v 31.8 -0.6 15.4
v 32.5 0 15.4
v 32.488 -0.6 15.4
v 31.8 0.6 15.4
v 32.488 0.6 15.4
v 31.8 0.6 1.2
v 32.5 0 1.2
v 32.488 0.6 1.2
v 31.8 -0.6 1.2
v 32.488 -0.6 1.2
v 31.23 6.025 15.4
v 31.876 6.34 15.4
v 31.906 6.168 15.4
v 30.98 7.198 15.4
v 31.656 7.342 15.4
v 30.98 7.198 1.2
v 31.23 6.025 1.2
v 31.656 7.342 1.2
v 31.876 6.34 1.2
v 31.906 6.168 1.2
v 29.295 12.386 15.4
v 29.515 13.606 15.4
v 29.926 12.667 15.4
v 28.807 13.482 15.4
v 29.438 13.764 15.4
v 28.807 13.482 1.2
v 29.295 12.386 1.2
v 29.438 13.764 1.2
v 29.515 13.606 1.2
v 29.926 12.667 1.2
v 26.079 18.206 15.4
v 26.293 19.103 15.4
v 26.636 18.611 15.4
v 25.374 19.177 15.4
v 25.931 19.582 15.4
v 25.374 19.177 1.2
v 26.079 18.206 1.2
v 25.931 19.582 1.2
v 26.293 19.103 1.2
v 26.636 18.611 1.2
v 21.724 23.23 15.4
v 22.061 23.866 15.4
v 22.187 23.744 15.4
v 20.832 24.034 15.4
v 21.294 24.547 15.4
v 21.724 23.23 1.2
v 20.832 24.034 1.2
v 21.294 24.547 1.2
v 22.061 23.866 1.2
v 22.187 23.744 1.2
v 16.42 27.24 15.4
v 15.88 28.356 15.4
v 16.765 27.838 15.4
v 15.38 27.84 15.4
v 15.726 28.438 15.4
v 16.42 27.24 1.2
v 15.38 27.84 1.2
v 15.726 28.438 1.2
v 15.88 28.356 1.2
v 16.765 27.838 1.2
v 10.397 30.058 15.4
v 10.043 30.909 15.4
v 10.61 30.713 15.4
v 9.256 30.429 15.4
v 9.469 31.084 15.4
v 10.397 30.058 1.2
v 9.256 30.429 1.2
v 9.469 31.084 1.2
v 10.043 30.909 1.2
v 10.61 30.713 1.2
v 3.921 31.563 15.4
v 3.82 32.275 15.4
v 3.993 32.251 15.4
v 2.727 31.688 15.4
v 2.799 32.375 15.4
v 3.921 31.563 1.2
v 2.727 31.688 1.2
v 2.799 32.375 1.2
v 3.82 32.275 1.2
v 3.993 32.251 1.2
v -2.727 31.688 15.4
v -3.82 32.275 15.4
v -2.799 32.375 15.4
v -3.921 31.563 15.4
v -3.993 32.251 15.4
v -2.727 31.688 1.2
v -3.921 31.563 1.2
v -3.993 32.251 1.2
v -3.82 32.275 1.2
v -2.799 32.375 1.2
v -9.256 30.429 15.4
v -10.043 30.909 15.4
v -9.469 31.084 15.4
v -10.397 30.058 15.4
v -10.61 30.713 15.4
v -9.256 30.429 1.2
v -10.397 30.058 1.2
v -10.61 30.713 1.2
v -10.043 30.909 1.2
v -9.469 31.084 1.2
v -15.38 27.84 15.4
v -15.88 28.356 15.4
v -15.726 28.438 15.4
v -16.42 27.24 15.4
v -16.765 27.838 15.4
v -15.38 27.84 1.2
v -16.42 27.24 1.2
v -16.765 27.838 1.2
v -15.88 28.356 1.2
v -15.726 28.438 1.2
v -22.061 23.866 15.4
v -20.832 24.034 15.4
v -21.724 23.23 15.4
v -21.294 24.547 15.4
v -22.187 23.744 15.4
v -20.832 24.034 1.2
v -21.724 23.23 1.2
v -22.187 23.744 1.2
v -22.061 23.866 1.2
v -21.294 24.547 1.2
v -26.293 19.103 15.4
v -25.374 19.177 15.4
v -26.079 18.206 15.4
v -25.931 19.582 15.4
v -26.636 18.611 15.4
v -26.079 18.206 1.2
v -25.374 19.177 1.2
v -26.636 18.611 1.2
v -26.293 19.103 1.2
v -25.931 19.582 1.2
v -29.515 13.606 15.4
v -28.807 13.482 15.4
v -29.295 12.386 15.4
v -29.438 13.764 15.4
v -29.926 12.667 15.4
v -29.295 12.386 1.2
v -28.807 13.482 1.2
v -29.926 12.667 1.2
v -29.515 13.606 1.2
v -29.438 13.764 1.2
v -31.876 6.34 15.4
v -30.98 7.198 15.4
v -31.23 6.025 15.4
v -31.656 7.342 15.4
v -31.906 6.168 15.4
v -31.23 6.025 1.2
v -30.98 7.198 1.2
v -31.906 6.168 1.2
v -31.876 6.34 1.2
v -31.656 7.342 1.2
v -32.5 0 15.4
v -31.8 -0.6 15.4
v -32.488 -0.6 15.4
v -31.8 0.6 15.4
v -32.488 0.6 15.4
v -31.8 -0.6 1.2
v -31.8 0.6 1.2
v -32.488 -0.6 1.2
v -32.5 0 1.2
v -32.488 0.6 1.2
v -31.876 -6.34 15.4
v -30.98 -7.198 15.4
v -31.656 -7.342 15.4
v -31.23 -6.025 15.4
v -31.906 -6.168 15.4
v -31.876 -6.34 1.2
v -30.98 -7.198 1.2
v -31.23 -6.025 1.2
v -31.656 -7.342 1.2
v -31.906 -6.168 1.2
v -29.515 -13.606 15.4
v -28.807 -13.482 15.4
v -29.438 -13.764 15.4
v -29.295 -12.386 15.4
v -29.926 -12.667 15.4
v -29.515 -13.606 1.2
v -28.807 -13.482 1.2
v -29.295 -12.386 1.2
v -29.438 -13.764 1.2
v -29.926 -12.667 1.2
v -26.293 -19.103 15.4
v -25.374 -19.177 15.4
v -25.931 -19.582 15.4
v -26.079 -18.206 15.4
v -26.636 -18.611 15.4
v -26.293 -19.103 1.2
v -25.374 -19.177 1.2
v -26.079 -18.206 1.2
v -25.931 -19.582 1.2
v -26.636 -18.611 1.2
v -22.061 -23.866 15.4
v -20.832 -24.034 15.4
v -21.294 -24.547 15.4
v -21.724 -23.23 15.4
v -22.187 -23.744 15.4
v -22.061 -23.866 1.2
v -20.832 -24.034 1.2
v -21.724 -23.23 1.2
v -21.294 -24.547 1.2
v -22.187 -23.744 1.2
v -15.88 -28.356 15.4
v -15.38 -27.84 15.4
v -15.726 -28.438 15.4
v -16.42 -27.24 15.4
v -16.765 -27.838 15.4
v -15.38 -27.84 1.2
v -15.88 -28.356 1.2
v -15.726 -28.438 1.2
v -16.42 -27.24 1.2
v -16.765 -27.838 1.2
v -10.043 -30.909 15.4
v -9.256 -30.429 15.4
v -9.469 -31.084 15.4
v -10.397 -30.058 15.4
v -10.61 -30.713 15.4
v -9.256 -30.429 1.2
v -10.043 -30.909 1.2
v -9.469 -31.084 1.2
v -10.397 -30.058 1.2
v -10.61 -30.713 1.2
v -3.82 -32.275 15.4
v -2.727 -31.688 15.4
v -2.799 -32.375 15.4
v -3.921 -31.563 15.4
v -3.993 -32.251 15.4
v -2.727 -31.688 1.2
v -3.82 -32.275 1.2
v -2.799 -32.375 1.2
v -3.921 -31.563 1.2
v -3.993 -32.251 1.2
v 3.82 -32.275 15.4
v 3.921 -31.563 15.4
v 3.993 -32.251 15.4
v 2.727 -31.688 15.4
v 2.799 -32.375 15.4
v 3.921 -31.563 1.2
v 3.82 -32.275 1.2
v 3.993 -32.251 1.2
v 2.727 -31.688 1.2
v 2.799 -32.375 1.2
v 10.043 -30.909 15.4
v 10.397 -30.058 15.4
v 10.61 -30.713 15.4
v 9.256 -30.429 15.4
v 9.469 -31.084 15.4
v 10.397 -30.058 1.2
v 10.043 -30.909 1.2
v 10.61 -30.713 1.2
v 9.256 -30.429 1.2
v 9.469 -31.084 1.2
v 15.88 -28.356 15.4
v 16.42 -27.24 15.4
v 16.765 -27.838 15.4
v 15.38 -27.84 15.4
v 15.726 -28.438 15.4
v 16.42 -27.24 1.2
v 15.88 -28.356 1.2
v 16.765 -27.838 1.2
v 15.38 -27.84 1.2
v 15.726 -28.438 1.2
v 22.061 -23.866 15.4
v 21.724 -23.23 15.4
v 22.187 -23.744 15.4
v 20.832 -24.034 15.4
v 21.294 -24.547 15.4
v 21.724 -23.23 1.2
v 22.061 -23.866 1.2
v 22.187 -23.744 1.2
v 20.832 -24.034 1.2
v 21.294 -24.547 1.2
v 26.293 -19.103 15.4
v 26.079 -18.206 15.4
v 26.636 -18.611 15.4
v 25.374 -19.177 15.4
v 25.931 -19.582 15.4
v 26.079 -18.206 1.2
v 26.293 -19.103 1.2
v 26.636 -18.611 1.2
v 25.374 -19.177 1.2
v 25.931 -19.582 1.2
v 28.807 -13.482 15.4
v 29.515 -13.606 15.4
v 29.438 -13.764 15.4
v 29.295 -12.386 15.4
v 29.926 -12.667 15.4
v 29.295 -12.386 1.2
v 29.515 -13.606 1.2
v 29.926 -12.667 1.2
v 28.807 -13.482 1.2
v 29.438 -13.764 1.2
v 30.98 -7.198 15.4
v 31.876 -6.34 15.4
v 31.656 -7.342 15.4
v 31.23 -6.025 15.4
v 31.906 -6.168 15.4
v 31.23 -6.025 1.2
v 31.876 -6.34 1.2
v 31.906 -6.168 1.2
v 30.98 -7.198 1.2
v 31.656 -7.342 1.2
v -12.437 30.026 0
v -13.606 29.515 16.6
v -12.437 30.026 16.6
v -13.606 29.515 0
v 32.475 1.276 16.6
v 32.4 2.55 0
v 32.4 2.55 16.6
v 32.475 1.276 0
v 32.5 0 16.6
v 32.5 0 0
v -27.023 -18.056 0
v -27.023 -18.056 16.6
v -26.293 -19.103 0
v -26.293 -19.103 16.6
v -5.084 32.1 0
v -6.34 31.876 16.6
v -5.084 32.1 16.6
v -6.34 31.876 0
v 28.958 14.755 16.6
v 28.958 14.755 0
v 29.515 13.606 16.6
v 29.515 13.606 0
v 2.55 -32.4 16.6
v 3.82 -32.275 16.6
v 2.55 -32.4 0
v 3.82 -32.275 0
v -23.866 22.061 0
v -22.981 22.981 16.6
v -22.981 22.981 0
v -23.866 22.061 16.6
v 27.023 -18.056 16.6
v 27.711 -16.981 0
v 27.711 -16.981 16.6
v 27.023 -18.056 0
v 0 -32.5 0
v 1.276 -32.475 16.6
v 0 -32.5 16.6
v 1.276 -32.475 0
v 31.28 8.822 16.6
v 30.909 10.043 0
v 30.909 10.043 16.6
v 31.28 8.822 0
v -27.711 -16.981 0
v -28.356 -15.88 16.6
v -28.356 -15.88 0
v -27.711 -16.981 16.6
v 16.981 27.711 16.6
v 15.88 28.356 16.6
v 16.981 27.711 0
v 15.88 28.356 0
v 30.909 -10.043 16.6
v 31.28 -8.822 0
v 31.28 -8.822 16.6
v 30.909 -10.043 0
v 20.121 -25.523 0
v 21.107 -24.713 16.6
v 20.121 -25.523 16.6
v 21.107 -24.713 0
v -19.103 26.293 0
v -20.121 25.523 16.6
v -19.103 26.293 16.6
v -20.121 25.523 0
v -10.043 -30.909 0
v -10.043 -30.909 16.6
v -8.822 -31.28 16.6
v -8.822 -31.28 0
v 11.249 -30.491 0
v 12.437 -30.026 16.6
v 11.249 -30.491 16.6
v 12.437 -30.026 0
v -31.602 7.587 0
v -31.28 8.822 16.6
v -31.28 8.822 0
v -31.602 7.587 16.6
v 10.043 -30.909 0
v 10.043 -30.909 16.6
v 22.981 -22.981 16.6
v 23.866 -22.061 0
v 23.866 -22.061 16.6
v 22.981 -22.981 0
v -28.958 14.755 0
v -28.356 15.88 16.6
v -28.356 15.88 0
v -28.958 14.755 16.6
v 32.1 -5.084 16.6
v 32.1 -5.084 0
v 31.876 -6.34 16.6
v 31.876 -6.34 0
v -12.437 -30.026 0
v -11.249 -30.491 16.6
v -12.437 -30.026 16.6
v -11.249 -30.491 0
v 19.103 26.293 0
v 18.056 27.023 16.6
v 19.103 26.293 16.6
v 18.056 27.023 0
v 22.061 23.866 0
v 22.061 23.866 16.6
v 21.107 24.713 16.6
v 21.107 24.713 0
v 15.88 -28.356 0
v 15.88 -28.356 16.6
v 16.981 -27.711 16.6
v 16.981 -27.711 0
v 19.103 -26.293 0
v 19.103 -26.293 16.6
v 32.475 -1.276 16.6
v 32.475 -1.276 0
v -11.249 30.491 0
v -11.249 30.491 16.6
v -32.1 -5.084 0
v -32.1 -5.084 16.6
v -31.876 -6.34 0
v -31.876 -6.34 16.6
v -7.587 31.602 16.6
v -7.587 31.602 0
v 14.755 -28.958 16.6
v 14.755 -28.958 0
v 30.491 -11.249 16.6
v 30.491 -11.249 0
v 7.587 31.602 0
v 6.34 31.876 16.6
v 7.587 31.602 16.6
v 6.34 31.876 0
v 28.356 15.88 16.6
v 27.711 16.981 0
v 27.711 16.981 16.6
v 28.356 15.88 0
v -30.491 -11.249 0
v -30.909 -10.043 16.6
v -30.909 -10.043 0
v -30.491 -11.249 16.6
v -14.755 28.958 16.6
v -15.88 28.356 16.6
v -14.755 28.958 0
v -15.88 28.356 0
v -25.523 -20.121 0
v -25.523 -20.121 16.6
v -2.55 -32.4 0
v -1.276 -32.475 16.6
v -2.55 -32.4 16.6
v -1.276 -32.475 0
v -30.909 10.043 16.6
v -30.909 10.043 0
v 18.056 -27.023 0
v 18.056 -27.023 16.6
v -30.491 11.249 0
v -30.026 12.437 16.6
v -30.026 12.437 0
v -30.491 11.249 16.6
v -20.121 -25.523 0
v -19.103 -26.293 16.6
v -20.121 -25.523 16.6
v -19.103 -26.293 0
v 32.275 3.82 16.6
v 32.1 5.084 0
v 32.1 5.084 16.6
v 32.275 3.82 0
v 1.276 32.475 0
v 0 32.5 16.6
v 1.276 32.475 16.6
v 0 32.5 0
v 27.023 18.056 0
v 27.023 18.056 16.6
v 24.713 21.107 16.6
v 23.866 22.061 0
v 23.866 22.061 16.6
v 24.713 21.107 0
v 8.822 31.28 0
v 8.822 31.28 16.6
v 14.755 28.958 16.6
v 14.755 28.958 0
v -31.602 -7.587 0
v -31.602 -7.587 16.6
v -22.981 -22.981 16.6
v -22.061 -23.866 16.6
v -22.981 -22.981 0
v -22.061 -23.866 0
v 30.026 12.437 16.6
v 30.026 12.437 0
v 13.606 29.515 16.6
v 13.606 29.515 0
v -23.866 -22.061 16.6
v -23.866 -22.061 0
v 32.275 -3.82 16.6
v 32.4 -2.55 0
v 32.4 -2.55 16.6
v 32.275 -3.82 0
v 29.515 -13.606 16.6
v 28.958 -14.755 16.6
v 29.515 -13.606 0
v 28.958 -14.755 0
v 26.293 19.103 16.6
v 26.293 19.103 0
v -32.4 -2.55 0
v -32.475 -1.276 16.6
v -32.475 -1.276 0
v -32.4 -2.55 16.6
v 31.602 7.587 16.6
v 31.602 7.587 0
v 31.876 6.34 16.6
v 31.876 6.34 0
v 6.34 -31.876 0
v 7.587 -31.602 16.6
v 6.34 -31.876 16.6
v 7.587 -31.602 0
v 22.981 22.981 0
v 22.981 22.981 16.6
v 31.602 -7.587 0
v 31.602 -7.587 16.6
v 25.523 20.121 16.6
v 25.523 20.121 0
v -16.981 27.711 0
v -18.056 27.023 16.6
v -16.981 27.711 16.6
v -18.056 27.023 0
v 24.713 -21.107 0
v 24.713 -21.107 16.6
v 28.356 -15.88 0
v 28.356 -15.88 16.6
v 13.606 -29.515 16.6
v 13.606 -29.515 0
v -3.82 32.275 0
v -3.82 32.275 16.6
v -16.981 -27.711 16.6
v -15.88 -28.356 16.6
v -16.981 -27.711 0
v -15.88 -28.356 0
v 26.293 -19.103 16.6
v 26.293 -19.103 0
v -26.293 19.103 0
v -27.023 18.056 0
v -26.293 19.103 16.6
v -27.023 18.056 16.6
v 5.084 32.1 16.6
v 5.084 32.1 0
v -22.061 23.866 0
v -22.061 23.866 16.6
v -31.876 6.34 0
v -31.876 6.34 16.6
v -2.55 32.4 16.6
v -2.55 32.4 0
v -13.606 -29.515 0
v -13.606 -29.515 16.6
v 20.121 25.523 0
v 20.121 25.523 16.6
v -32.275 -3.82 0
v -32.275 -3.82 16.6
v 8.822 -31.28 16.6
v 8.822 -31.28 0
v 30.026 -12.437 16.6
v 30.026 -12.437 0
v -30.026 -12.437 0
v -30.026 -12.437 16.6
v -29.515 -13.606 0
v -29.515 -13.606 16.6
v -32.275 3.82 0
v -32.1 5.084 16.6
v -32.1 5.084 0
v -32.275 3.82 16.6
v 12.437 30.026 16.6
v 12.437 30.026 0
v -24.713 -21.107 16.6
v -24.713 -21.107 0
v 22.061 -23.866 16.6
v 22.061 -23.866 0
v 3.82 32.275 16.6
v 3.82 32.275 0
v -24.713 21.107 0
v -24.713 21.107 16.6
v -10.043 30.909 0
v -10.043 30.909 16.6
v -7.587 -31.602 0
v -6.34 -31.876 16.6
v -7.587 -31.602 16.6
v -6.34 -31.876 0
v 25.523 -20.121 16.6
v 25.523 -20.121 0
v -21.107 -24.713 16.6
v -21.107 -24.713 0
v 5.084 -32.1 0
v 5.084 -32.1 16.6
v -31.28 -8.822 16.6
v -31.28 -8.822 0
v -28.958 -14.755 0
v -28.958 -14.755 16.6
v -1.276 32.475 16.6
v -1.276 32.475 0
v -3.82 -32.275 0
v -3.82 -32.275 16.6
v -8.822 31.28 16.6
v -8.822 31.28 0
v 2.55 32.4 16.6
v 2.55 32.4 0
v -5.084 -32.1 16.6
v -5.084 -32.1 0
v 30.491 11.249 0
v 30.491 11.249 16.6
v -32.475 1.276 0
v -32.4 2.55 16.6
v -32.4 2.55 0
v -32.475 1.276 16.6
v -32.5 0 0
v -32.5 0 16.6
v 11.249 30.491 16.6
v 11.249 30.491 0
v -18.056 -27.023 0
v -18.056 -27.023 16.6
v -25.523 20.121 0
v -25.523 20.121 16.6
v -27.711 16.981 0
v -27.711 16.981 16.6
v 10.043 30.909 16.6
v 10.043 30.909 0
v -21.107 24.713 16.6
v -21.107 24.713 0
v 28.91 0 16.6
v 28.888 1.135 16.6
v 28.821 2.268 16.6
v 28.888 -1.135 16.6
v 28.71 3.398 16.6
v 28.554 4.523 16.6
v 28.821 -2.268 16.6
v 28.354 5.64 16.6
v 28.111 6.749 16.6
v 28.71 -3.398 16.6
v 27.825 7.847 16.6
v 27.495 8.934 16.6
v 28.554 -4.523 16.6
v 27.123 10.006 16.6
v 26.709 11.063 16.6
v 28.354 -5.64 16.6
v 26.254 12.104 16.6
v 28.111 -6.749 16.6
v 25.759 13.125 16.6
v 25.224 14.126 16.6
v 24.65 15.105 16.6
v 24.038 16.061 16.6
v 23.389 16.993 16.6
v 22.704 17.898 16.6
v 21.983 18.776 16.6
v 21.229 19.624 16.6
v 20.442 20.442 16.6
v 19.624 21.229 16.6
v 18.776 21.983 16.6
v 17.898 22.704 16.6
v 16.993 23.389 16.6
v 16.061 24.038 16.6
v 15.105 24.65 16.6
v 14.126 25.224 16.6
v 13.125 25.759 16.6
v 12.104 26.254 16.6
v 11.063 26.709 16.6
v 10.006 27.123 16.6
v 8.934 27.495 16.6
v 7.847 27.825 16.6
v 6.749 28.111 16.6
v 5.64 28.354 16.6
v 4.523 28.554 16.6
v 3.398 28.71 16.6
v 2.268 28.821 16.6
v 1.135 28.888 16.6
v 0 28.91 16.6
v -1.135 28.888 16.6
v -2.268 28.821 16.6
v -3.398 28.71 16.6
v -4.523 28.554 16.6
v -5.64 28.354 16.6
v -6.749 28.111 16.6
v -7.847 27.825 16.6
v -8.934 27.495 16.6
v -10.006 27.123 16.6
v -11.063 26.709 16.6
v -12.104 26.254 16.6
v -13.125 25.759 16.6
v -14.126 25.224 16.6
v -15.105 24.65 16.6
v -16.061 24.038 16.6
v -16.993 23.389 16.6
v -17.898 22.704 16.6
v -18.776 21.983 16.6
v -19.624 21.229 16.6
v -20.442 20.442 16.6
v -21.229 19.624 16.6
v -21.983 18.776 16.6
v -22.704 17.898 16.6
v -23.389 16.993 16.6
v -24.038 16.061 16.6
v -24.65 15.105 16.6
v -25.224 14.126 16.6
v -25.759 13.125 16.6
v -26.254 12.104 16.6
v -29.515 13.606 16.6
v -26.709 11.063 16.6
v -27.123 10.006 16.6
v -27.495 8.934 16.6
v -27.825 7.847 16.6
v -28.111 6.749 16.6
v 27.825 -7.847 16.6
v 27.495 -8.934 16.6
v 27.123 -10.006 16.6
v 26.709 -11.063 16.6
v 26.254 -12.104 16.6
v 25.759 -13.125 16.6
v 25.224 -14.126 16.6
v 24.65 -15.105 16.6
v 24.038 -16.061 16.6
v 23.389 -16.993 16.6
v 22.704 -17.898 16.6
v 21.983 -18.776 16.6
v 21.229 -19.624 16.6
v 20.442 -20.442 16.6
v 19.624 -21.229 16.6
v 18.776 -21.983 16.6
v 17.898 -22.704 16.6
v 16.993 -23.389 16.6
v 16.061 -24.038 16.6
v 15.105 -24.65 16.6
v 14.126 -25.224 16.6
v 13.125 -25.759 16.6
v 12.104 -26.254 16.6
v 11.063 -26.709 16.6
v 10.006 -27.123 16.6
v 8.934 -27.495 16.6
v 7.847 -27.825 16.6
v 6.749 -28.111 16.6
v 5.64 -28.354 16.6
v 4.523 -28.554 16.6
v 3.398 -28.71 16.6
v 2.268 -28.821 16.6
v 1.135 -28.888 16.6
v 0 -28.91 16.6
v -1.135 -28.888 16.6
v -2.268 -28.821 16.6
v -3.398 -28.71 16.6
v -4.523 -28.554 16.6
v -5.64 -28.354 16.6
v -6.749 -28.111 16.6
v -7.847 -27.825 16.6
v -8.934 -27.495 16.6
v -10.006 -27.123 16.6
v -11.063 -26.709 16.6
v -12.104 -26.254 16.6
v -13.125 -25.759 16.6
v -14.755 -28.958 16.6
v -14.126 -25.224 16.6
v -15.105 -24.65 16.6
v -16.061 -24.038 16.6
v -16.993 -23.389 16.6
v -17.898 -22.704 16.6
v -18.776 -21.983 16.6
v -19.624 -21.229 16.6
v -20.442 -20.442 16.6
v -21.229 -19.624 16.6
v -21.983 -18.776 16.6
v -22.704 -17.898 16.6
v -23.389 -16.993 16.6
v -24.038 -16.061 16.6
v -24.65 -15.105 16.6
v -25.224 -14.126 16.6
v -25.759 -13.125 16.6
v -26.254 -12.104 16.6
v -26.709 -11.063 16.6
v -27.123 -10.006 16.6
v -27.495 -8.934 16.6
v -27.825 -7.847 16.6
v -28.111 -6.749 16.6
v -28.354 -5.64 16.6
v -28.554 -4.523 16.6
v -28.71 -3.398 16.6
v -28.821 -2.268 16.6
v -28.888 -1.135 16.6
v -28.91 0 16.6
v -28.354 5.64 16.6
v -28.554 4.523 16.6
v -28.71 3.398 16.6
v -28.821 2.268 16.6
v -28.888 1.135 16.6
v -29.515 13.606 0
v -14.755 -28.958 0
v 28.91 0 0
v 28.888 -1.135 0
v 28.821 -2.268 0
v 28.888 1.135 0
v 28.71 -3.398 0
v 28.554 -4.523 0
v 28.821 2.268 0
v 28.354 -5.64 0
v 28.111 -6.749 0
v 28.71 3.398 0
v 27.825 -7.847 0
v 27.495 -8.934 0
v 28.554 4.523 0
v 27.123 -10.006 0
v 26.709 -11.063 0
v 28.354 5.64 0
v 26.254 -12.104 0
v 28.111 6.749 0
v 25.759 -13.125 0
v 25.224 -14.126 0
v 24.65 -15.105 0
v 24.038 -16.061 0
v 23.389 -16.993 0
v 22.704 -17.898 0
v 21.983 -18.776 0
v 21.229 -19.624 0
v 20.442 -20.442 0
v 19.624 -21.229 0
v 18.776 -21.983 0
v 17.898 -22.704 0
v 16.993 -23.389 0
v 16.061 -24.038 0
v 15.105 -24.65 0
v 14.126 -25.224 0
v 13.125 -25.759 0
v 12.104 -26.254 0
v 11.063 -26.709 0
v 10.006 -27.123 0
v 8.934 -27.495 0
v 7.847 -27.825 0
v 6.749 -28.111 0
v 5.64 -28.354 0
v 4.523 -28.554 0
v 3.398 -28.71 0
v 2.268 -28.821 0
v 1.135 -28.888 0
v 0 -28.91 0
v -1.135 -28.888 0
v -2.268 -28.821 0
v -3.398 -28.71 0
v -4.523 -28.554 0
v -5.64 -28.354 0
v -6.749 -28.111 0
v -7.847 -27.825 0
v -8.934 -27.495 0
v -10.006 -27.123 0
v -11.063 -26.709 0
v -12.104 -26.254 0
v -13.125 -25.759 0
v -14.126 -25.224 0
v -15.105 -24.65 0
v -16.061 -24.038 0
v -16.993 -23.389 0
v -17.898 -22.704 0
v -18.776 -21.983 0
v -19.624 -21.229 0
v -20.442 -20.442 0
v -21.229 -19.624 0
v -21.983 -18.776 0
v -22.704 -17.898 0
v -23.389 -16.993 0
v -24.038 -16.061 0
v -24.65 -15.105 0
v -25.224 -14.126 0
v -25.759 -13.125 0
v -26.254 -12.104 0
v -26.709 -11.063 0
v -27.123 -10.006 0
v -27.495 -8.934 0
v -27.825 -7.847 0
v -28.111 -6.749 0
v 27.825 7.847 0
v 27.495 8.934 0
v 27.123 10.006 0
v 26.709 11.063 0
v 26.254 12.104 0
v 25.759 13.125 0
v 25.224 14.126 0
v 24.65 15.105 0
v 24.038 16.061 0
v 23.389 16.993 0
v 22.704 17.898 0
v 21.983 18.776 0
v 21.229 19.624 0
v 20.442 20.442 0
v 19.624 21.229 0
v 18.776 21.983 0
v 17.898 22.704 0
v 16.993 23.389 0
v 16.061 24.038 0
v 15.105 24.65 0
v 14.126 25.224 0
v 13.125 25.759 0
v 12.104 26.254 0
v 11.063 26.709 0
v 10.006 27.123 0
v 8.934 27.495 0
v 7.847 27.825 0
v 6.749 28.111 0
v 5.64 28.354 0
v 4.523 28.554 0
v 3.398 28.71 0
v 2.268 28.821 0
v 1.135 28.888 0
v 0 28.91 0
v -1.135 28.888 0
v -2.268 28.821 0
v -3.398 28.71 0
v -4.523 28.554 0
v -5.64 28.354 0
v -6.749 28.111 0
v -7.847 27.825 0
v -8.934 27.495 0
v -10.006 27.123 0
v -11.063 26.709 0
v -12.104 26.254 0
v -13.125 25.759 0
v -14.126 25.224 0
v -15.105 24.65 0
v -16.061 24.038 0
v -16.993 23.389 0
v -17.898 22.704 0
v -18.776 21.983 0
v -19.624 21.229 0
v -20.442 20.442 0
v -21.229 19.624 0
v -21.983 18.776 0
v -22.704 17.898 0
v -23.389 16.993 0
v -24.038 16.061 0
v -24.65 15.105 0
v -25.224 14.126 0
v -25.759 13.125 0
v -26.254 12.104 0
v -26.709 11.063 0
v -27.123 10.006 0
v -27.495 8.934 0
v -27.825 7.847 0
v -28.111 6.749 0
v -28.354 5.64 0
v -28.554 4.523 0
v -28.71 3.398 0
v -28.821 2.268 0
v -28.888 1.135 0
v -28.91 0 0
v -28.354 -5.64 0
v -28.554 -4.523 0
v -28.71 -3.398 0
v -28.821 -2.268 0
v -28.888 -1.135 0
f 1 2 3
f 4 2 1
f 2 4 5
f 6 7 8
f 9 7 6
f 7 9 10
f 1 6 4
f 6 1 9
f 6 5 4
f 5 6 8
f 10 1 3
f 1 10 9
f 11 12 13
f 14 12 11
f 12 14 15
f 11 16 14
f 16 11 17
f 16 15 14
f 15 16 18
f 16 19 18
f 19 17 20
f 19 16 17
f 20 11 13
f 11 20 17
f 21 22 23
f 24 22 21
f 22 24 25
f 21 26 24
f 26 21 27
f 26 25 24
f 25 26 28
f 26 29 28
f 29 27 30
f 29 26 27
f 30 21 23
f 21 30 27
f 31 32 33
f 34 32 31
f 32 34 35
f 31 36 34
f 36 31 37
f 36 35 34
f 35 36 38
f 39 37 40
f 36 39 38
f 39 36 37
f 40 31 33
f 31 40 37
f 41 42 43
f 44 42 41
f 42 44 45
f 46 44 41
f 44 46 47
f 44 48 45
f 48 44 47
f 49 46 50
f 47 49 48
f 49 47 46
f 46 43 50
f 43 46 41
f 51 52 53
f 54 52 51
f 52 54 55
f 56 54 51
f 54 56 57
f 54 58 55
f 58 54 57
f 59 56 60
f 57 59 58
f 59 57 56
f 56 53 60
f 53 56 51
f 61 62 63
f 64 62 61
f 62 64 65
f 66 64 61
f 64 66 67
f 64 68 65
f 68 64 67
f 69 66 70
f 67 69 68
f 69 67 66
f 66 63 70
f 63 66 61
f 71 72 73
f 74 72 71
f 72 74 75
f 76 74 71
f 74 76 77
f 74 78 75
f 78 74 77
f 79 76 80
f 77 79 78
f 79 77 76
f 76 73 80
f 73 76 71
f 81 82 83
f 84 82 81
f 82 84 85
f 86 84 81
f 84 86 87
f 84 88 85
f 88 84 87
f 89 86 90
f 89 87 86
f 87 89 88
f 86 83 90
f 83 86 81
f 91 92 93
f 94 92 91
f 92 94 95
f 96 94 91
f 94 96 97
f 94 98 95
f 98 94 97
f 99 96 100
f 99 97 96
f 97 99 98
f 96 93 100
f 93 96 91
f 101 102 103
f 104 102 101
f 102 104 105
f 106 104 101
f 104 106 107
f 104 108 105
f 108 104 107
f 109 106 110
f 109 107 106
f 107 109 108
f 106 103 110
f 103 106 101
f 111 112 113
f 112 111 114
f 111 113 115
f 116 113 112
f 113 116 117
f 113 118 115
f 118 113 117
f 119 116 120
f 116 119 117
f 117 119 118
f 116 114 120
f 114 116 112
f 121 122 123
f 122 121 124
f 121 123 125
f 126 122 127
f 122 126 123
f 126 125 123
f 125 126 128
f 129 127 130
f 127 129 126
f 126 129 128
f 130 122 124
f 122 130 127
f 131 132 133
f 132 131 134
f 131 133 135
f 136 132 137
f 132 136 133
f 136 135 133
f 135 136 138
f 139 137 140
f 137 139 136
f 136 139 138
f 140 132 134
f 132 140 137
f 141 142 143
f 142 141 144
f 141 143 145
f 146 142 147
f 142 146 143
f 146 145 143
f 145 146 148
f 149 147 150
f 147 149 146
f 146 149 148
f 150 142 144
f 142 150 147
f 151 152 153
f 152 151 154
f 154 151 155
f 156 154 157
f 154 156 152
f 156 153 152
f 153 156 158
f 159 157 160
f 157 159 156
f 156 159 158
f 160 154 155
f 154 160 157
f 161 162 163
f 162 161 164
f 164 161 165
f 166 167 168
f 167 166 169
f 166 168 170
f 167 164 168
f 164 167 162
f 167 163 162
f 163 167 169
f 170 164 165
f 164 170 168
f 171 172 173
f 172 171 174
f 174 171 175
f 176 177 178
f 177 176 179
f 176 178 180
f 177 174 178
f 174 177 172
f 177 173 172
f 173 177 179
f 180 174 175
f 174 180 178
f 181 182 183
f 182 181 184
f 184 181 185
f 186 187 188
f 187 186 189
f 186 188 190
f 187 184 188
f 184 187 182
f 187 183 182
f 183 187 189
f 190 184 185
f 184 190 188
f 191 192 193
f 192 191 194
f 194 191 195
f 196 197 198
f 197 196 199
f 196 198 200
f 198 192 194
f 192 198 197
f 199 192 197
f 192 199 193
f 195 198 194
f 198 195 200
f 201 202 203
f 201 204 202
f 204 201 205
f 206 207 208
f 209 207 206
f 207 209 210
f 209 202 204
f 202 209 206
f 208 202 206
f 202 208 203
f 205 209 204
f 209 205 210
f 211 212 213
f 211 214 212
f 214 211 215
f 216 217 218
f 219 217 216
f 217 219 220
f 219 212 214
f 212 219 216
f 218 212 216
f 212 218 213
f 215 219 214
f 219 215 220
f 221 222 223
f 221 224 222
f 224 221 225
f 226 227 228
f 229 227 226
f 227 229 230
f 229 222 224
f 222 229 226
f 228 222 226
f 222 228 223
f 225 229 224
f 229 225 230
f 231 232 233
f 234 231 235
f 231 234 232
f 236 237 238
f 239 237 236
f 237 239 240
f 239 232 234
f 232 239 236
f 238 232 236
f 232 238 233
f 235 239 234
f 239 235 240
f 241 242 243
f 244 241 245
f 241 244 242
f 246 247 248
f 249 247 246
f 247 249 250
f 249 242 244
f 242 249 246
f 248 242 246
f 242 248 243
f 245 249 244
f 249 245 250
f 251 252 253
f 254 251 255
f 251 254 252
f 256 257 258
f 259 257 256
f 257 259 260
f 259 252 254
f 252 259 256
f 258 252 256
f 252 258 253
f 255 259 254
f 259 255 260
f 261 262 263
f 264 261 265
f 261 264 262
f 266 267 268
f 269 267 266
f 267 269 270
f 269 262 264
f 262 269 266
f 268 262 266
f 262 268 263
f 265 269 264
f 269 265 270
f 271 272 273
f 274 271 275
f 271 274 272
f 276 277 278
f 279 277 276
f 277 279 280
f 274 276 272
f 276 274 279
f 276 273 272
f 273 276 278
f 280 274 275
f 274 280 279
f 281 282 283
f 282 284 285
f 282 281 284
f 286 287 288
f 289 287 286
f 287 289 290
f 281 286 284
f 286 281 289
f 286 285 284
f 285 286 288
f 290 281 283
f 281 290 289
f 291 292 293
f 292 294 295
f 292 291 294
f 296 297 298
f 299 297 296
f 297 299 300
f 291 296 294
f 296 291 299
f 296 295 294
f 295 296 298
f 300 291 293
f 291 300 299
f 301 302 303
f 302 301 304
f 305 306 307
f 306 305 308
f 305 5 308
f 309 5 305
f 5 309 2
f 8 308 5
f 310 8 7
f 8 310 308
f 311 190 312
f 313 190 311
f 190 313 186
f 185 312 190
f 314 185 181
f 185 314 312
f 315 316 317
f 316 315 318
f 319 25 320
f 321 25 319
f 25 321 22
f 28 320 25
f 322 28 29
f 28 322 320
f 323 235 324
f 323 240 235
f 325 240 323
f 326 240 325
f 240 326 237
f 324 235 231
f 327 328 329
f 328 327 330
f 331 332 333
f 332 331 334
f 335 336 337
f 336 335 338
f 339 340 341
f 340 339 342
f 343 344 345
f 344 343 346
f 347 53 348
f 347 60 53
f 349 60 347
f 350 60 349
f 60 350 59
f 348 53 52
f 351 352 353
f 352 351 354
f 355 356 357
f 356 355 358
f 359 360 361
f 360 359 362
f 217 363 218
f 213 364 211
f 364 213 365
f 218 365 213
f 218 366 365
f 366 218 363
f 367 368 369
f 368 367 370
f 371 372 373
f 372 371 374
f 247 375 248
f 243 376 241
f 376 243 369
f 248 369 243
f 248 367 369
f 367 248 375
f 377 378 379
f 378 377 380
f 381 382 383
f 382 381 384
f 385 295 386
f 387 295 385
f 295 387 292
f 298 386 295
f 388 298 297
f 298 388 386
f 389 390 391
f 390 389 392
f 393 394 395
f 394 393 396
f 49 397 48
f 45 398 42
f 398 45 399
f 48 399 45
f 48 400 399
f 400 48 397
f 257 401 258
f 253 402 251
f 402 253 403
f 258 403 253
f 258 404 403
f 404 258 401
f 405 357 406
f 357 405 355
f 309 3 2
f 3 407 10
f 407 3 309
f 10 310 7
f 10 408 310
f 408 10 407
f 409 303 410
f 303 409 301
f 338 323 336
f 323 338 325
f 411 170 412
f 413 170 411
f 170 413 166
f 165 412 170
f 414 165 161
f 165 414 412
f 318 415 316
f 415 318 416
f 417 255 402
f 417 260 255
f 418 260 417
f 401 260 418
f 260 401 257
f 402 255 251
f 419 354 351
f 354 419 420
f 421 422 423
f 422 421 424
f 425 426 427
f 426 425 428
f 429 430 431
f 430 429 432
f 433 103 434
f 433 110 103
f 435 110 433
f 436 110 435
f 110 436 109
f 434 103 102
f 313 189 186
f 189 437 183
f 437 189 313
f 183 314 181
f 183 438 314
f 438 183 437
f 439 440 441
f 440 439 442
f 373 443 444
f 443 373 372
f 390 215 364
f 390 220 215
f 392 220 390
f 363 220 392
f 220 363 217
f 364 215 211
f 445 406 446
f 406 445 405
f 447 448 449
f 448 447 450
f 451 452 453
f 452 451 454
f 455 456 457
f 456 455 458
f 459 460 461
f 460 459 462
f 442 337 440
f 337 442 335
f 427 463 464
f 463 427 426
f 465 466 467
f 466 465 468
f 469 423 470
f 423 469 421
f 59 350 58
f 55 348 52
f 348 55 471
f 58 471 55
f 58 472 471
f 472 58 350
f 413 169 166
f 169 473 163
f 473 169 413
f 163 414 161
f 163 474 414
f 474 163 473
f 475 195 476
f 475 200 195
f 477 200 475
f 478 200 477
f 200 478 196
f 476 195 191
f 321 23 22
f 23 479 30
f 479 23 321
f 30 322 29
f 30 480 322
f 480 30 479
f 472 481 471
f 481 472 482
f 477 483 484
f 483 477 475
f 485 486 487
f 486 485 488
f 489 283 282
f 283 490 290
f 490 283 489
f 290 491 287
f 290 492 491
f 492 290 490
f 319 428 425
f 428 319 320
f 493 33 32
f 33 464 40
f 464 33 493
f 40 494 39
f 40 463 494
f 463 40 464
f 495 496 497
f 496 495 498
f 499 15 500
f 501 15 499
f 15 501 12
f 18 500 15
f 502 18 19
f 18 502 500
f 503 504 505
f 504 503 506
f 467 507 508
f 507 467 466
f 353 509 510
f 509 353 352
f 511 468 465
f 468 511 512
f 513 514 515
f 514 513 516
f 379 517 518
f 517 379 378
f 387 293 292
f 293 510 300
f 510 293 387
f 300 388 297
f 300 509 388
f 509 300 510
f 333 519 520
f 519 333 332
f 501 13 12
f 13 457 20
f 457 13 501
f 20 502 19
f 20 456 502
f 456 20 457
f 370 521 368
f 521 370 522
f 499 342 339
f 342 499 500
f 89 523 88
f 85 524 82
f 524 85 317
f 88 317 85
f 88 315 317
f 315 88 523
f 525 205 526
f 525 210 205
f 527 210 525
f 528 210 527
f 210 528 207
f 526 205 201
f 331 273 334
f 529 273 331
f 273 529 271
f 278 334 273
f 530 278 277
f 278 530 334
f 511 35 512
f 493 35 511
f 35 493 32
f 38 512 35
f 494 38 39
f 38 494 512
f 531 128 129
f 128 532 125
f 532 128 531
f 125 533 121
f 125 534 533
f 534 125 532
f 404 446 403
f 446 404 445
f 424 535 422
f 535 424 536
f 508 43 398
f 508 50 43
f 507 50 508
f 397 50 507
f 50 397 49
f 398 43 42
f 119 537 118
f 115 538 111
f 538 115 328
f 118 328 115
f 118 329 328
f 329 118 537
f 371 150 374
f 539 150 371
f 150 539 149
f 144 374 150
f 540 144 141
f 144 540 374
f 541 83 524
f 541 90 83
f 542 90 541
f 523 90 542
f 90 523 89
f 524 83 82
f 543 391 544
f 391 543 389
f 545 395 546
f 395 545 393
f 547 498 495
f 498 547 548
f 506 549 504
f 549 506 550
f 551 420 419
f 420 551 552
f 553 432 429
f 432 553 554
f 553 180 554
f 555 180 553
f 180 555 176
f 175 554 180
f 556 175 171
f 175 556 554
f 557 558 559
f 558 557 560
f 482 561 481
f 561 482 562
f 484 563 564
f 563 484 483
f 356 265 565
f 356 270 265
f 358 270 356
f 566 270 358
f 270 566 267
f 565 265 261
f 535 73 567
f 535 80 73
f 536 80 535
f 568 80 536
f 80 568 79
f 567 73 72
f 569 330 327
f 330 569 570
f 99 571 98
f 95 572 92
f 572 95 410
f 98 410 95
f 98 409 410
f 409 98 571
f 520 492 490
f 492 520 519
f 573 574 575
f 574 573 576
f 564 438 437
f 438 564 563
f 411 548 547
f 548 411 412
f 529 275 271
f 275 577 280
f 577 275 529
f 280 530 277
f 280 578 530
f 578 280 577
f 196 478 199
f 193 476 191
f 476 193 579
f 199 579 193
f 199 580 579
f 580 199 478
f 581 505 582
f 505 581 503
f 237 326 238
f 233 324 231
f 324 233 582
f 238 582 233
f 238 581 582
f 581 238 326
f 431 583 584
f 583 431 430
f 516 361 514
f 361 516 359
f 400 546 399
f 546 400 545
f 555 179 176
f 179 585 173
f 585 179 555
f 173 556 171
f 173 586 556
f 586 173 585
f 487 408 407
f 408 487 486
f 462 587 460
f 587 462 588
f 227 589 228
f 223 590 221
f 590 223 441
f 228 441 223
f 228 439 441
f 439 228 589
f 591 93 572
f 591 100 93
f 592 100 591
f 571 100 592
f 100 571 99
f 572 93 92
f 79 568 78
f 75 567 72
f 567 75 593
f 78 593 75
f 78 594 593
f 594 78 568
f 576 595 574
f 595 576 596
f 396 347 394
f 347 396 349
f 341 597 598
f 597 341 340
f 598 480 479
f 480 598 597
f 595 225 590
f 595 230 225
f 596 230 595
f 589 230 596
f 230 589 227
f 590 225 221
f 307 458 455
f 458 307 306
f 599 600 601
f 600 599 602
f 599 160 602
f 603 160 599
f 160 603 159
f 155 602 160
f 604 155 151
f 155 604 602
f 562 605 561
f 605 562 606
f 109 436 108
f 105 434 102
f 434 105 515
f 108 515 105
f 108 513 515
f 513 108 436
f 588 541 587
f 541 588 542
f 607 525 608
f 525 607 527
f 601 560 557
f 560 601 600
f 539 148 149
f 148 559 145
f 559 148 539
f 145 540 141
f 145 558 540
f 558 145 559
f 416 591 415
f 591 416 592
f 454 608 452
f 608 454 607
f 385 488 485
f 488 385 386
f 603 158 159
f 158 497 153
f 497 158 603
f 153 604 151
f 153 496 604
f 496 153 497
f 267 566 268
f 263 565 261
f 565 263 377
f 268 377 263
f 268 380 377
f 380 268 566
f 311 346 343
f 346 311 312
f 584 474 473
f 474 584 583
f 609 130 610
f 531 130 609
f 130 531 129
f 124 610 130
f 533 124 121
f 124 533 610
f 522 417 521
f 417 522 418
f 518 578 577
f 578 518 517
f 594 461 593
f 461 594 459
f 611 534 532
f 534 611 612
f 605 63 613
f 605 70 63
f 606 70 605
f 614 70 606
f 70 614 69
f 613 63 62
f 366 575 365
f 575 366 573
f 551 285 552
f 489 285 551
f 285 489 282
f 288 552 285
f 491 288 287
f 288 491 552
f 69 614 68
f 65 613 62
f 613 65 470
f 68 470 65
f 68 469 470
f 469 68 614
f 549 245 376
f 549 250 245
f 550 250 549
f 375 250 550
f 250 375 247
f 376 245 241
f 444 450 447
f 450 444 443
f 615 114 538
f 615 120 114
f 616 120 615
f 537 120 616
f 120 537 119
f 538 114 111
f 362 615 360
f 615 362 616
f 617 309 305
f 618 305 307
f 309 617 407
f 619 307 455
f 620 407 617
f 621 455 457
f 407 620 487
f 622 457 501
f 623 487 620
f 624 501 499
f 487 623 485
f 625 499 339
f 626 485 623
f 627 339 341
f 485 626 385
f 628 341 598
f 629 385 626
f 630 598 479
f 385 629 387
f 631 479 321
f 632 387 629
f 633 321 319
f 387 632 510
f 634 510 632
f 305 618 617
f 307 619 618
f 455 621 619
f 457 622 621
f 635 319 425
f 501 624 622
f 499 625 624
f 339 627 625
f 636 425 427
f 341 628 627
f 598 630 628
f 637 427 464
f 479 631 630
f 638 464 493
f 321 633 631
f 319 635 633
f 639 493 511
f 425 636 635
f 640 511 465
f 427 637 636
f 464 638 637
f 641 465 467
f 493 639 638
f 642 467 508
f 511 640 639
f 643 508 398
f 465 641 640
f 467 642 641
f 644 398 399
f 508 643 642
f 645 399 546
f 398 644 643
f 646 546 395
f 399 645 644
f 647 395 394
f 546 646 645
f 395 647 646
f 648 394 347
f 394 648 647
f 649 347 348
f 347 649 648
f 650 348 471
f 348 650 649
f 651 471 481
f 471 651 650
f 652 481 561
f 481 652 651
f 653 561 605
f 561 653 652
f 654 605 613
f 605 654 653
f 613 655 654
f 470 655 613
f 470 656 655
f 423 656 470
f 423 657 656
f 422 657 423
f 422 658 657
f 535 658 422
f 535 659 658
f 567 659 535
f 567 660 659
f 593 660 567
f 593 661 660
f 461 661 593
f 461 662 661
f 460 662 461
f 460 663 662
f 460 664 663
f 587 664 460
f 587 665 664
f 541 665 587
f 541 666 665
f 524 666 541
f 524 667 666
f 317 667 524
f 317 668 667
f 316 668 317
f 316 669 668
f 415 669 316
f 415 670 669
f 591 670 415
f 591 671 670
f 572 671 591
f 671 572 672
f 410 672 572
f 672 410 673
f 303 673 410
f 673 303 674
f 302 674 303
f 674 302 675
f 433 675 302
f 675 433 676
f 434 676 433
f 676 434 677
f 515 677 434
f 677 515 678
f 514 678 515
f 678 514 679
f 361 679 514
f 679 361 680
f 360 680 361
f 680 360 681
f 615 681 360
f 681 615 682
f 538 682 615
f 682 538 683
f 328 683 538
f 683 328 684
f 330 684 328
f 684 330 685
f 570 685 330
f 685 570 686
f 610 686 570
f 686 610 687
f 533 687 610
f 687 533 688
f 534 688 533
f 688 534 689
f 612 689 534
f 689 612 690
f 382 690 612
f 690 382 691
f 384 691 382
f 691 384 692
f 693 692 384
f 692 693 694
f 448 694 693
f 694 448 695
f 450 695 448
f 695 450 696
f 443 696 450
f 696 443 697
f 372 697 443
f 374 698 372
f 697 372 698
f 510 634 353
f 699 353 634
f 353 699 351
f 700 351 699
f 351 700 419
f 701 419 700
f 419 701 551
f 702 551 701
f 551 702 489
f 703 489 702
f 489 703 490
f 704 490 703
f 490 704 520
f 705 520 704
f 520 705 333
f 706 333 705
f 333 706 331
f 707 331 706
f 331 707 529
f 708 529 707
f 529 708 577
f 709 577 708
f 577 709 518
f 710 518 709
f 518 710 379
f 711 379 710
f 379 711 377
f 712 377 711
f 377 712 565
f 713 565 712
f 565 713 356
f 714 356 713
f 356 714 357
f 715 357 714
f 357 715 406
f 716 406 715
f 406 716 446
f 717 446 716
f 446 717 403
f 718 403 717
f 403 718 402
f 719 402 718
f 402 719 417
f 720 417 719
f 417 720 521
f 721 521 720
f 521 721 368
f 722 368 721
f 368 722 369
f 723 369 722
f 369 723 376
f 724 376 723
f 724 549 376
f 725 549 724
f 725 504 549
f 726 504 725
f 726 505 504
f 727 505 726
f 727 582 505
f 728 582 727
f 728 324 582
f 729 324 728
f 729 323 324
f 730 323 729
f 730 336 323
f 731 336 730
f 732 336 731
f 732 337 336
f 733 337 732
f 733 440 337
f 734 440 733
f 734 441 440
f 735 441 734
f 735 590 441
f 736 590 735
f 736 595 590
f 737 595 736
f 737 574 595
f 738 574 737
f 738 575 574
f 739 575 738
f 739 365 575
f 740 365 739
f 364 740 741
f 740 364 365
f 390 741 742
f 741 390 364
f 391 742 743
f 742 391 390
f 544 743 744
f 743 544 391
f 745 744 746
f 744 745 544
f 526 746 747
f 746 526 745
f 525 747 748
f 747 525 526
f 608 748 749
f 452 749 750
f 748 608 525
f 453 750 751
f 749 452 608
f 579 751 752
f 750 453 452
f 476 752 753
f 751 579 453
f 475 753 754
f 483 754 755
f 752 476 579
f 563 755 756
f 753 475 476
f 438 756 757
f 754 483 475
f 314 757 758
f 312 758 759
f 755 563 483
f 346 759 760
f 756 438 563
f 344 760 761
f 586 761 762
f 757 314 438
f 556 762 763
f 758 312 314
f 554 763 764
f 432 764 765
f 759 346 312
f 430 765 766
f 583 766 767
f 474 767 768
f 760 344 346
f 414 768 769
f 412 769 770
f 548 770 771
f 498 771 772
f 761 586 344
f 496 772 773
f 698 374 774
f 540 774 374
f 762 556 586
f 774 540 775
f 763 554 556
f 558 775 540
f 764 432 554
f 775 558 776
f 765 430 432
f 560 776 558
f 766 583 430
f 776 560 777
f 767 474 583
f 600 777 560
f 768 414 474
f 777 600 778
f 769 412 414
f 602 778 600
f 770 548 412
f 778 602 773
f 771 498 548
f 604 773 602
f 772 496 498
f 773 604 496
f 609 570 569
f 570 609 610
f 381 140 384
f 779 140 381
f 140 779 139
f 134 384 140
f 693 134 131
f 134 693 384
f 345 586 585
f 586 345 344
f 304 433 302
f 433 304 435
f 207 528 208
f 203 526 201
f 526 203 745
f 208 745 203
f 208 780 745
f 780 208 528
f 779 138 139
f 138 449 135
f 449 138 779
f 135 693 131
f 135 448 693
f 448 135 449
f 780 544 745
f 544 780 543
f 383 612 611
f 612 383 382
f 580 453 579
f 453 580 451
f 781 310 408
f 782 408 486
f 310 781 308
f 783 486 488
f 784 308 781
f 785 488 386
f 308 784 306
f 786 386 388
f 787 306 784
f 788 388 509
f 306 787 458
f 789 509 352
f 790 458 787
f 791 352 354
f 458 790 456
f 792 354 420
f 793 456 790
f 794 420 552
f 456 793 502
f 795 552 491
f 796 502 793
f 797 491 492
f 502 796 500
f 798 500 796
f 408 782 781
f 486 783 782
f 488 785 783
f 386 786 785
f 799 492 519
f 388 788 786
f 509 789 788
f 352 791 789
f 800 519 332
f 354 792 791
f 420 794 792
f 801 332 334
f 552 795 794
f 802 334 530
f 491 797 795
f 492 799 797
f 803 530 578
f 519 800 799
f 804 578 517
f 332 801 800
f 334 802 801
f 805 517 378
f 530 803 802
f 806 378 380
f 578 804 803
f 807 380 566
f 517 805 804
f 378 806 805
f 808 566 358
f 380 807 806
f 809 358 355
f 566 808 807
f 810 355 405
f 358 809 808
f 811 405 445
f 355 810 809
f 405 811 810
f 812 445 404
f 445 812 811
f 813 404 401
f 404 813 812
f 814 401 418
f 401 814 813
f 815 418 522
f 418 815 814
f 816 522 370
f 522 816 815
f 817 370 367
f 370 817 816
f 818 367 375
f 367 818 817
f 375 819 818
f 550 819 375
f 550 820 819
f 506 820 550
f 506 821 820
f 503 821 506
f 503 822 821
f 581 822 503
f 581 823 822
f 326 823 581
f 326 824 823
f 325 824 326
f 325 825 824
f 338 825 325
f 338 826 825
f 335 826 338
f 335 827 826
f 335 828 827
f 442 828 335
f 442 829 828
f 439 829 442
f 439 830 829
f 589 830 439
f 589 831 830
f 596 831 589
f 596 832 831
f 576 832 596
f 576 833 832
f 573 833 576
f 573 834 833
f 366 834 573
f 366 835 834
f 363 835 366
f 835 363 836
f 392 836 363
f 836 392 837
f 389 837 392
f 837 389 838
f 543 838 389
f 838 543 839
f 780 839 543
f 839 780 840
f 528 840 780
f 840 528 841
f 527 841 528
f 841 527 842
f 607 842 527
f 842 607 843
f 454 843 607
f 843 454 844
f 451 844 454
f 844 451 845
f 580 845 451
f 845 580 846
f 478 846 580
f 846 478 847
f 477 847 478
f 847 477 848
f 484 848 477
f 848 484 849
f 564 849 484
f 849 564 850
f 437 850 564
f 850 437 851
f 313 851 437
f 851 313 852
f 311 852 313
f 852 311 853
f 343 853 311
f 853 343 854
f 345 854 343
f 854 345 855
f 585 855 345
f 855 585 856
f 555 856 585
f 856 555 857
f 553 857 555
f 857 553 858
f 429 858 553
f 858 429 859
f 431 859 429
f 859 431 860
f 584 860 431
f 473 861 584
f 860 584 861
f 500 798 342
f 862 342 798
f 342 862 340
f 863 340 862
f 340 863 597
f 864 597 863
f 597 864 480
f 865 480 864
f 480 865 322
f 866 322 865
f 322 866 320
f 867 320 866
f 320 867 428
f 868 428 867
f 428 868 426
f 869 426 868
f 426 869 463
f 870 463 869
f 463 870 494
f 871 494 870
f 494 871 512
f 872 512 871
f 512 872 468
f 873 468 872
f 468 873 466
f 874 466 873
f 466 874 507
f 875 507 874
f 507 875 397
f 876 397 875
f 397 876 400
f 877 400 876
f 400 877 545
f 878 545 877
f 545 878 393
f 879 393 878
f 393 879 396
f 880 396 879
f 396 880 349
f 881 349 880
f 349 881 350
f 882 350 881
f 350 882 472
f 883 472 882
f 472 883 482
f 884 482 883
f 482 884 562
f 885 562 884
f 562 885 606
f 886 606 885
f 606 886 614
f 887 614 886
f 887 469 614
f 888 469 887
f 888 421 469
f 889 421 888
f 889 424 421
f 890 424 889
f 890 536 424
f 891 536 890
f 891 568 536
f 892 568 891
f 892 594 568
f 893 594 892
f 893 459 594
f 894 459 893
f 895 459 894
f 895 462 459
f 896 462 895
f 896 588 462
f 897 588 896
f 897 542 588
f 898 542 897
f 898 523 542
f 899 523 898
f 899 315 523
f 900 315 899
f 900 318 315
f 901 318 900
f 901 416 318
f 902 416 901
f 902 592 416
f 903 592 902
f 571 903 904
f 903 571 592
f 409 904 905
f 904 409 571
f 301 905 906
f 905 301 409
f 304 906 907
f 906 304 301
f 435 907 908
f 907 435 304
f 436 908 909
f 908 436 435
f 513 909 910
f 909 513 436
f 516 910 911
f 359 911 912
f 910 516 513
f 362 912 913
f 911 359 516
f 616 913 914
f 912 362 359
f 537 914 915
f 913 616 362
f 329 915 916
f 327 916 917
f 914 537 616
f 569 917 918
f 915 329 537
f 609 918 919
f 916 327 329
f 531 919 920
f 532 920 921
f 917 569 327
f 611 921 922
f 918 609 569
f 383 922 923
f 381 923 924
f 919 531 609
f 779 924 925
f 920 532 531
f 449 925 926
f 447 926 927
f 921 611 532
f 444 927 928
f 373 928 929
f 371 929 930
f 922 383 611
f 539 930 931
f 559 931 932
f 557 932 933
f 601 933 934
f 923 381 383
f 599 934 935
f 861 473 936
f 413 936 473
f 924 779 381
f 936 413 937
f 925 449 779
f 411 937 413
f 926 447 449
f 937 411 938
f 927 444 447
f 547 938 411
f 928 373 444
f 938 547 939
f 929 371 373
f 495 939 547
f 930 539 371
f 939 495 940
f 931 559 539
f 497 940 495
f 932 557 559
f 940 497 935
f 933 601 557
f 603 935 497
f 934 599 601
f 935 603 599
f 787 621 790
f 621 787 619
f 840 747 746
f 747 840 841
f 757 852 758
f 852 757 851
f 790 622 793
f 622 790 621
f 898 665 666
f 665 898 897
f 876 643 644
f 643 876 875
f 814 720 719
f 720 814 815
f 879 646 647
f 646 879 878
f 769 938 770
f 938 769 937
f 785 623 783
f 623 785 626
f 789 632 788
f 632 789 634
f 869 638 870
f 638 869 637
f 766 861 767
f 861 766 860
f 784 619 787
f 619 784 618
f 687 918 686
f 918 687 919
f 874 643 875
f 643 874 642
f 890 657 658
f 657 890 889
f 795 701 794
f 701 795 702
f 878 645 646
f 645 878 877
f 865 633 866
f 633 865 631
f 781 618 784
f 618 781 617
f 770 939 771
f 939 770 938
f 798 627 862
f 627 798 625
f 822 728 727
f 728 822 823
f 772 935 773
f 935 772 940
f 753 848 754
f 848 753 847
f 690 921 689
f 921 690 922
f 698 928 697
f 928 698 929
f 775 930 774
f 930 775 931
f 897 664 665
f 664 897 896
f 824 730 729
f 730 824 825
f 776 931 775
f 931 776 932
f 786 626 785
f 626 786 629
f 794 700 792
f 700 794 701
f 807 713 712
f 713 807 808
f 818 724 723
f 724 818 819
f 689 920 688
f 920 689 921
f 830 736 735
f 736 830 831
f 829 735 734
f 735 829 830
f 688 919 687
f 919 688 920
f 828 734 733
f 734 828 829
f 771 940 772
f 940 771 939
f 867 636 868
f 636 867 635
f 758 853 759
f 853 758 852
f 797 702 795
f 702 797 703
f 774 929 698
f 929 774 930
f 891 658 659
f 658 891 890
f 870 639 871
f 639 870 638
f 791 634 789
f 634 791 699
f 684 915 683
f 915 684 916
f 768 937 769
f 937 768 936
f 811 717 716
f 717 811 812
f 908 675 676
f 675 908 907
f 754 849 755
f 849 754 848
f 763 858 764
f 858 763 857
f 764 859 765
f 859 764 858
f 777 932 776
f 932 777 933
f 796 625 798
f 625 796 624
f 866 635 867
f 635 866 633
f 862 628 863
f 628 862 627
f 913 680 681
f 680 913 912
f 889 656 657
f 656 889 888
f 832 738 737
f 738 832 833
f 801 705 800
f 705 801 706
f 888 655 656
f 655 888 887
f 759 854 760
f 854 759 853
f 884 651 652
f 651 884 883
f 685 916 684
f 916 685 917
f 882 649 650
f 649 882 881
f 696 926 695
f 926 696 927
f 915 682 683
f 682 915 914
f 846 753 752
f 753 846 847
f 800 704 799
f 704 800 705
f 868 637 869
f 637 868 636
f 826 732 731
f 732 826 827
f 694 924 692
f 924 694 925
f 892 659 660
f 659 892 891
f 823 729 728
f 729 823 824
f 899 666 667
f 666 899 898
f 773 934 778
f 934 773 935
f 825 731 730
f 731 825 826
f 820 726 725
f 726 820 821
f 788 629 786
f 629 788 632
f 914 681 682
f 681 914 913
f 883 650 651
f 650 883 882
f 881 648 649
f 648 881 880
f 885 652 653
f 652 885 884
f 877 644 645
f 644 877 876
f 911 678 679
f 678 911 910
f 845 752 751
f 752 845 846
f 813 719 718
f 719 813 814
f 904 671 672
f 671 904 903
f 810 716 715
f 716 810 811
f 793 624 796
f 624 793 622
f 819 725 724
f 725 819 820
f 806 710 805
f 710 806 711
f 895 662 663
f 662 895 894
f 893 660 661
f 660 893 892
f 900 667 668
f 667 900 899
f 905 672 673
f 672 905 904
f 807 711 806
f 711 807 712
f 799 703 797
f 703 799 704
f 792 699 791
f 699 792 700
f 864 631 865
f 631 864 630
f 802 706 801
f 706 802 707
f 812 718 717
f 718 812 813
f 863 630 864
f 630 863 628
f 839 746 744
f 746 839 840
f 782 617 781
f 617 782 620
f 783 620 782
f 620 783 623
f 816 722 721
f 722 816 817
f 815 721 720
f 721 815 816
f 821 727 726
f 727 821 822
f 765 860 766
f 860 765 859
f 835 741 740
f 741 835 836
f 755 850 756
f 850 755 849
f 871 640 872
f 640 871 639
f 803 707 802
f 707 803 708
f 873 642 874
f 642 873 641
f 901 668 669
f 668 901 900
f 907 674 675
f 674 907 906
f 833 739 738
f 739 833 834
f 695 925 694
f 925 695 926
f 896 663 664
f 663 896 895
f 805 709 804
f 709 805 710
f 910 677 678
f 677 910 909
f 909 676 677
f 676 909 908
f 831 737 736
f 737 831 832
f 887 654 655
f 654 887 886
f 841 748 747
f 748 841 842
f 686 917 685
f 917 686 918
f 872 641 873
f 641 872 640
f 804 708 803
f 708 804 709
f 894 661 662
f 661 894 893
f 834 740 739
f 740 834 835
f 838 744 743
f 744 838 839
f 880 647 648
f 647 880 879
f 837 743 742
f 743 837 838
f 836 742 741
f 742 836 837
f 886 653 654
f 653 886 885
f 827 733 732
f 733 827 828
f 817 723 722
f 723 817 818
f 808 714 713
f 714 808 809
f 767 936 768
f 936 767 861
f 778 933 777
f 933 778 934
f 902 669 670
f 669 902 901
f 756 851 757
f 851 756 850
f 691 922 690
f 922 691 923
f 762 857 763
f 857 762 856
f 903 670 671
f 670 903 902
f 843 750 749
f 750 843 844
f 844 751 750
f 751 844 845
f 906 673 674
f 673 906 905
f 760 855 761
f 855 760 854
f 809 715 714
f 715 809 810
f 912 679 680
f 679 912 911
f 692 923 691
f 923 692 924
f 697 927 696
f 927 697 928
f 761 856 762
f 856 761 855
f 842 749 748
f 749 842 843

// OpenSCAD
// tire_tpu.scad: optional printed tire for wheel.scad with tire = "tpu".
//
// For people who already have TPU. Printed 95A TPU grips noticeably less than
// a rubber O-ring or a cast silicone tire, so the O-ring wheel is the default.
// Stretch the tire over one lip of the rim into the channel.
//
// Print flat as exported, 95A TPU, slow (20-25 mm/s), 100 % infill. Print two.

include <lib/telebot_common.scad>

stretch = 0.02;             // tire inner diameter is 2 % smaller than the channel
tread_grooves = 30;
tread_depth = 0.7;

channel_r = wheel_d / 2 - tpu_tire_t;
tire_w = pw_width - 2 * 1.5 - 0.4;   // channel width (rim minus lips) less clearance

module tire_tpu() {
    difference() {
        cylinder(r = wheel_d / 2, h = tire_w, $fn = 160);
        translate([0, 0, -1]) cylinder(r = channel_r * (1 - stretch), h = tire_w + 2, $fn = 160);
        // shallow chevron-free tread: straight grooves across the face
        for (i = [0 : tread_grooves - 1]) rotate(i * 360 / tread_grooves)
            translate([wheel_d / 2 - tread_depth, -0.6, 1.2]) cube([tread_depth + 1, 1.2, tire_w - 2.4]);
    }
}

tire_tpu();
